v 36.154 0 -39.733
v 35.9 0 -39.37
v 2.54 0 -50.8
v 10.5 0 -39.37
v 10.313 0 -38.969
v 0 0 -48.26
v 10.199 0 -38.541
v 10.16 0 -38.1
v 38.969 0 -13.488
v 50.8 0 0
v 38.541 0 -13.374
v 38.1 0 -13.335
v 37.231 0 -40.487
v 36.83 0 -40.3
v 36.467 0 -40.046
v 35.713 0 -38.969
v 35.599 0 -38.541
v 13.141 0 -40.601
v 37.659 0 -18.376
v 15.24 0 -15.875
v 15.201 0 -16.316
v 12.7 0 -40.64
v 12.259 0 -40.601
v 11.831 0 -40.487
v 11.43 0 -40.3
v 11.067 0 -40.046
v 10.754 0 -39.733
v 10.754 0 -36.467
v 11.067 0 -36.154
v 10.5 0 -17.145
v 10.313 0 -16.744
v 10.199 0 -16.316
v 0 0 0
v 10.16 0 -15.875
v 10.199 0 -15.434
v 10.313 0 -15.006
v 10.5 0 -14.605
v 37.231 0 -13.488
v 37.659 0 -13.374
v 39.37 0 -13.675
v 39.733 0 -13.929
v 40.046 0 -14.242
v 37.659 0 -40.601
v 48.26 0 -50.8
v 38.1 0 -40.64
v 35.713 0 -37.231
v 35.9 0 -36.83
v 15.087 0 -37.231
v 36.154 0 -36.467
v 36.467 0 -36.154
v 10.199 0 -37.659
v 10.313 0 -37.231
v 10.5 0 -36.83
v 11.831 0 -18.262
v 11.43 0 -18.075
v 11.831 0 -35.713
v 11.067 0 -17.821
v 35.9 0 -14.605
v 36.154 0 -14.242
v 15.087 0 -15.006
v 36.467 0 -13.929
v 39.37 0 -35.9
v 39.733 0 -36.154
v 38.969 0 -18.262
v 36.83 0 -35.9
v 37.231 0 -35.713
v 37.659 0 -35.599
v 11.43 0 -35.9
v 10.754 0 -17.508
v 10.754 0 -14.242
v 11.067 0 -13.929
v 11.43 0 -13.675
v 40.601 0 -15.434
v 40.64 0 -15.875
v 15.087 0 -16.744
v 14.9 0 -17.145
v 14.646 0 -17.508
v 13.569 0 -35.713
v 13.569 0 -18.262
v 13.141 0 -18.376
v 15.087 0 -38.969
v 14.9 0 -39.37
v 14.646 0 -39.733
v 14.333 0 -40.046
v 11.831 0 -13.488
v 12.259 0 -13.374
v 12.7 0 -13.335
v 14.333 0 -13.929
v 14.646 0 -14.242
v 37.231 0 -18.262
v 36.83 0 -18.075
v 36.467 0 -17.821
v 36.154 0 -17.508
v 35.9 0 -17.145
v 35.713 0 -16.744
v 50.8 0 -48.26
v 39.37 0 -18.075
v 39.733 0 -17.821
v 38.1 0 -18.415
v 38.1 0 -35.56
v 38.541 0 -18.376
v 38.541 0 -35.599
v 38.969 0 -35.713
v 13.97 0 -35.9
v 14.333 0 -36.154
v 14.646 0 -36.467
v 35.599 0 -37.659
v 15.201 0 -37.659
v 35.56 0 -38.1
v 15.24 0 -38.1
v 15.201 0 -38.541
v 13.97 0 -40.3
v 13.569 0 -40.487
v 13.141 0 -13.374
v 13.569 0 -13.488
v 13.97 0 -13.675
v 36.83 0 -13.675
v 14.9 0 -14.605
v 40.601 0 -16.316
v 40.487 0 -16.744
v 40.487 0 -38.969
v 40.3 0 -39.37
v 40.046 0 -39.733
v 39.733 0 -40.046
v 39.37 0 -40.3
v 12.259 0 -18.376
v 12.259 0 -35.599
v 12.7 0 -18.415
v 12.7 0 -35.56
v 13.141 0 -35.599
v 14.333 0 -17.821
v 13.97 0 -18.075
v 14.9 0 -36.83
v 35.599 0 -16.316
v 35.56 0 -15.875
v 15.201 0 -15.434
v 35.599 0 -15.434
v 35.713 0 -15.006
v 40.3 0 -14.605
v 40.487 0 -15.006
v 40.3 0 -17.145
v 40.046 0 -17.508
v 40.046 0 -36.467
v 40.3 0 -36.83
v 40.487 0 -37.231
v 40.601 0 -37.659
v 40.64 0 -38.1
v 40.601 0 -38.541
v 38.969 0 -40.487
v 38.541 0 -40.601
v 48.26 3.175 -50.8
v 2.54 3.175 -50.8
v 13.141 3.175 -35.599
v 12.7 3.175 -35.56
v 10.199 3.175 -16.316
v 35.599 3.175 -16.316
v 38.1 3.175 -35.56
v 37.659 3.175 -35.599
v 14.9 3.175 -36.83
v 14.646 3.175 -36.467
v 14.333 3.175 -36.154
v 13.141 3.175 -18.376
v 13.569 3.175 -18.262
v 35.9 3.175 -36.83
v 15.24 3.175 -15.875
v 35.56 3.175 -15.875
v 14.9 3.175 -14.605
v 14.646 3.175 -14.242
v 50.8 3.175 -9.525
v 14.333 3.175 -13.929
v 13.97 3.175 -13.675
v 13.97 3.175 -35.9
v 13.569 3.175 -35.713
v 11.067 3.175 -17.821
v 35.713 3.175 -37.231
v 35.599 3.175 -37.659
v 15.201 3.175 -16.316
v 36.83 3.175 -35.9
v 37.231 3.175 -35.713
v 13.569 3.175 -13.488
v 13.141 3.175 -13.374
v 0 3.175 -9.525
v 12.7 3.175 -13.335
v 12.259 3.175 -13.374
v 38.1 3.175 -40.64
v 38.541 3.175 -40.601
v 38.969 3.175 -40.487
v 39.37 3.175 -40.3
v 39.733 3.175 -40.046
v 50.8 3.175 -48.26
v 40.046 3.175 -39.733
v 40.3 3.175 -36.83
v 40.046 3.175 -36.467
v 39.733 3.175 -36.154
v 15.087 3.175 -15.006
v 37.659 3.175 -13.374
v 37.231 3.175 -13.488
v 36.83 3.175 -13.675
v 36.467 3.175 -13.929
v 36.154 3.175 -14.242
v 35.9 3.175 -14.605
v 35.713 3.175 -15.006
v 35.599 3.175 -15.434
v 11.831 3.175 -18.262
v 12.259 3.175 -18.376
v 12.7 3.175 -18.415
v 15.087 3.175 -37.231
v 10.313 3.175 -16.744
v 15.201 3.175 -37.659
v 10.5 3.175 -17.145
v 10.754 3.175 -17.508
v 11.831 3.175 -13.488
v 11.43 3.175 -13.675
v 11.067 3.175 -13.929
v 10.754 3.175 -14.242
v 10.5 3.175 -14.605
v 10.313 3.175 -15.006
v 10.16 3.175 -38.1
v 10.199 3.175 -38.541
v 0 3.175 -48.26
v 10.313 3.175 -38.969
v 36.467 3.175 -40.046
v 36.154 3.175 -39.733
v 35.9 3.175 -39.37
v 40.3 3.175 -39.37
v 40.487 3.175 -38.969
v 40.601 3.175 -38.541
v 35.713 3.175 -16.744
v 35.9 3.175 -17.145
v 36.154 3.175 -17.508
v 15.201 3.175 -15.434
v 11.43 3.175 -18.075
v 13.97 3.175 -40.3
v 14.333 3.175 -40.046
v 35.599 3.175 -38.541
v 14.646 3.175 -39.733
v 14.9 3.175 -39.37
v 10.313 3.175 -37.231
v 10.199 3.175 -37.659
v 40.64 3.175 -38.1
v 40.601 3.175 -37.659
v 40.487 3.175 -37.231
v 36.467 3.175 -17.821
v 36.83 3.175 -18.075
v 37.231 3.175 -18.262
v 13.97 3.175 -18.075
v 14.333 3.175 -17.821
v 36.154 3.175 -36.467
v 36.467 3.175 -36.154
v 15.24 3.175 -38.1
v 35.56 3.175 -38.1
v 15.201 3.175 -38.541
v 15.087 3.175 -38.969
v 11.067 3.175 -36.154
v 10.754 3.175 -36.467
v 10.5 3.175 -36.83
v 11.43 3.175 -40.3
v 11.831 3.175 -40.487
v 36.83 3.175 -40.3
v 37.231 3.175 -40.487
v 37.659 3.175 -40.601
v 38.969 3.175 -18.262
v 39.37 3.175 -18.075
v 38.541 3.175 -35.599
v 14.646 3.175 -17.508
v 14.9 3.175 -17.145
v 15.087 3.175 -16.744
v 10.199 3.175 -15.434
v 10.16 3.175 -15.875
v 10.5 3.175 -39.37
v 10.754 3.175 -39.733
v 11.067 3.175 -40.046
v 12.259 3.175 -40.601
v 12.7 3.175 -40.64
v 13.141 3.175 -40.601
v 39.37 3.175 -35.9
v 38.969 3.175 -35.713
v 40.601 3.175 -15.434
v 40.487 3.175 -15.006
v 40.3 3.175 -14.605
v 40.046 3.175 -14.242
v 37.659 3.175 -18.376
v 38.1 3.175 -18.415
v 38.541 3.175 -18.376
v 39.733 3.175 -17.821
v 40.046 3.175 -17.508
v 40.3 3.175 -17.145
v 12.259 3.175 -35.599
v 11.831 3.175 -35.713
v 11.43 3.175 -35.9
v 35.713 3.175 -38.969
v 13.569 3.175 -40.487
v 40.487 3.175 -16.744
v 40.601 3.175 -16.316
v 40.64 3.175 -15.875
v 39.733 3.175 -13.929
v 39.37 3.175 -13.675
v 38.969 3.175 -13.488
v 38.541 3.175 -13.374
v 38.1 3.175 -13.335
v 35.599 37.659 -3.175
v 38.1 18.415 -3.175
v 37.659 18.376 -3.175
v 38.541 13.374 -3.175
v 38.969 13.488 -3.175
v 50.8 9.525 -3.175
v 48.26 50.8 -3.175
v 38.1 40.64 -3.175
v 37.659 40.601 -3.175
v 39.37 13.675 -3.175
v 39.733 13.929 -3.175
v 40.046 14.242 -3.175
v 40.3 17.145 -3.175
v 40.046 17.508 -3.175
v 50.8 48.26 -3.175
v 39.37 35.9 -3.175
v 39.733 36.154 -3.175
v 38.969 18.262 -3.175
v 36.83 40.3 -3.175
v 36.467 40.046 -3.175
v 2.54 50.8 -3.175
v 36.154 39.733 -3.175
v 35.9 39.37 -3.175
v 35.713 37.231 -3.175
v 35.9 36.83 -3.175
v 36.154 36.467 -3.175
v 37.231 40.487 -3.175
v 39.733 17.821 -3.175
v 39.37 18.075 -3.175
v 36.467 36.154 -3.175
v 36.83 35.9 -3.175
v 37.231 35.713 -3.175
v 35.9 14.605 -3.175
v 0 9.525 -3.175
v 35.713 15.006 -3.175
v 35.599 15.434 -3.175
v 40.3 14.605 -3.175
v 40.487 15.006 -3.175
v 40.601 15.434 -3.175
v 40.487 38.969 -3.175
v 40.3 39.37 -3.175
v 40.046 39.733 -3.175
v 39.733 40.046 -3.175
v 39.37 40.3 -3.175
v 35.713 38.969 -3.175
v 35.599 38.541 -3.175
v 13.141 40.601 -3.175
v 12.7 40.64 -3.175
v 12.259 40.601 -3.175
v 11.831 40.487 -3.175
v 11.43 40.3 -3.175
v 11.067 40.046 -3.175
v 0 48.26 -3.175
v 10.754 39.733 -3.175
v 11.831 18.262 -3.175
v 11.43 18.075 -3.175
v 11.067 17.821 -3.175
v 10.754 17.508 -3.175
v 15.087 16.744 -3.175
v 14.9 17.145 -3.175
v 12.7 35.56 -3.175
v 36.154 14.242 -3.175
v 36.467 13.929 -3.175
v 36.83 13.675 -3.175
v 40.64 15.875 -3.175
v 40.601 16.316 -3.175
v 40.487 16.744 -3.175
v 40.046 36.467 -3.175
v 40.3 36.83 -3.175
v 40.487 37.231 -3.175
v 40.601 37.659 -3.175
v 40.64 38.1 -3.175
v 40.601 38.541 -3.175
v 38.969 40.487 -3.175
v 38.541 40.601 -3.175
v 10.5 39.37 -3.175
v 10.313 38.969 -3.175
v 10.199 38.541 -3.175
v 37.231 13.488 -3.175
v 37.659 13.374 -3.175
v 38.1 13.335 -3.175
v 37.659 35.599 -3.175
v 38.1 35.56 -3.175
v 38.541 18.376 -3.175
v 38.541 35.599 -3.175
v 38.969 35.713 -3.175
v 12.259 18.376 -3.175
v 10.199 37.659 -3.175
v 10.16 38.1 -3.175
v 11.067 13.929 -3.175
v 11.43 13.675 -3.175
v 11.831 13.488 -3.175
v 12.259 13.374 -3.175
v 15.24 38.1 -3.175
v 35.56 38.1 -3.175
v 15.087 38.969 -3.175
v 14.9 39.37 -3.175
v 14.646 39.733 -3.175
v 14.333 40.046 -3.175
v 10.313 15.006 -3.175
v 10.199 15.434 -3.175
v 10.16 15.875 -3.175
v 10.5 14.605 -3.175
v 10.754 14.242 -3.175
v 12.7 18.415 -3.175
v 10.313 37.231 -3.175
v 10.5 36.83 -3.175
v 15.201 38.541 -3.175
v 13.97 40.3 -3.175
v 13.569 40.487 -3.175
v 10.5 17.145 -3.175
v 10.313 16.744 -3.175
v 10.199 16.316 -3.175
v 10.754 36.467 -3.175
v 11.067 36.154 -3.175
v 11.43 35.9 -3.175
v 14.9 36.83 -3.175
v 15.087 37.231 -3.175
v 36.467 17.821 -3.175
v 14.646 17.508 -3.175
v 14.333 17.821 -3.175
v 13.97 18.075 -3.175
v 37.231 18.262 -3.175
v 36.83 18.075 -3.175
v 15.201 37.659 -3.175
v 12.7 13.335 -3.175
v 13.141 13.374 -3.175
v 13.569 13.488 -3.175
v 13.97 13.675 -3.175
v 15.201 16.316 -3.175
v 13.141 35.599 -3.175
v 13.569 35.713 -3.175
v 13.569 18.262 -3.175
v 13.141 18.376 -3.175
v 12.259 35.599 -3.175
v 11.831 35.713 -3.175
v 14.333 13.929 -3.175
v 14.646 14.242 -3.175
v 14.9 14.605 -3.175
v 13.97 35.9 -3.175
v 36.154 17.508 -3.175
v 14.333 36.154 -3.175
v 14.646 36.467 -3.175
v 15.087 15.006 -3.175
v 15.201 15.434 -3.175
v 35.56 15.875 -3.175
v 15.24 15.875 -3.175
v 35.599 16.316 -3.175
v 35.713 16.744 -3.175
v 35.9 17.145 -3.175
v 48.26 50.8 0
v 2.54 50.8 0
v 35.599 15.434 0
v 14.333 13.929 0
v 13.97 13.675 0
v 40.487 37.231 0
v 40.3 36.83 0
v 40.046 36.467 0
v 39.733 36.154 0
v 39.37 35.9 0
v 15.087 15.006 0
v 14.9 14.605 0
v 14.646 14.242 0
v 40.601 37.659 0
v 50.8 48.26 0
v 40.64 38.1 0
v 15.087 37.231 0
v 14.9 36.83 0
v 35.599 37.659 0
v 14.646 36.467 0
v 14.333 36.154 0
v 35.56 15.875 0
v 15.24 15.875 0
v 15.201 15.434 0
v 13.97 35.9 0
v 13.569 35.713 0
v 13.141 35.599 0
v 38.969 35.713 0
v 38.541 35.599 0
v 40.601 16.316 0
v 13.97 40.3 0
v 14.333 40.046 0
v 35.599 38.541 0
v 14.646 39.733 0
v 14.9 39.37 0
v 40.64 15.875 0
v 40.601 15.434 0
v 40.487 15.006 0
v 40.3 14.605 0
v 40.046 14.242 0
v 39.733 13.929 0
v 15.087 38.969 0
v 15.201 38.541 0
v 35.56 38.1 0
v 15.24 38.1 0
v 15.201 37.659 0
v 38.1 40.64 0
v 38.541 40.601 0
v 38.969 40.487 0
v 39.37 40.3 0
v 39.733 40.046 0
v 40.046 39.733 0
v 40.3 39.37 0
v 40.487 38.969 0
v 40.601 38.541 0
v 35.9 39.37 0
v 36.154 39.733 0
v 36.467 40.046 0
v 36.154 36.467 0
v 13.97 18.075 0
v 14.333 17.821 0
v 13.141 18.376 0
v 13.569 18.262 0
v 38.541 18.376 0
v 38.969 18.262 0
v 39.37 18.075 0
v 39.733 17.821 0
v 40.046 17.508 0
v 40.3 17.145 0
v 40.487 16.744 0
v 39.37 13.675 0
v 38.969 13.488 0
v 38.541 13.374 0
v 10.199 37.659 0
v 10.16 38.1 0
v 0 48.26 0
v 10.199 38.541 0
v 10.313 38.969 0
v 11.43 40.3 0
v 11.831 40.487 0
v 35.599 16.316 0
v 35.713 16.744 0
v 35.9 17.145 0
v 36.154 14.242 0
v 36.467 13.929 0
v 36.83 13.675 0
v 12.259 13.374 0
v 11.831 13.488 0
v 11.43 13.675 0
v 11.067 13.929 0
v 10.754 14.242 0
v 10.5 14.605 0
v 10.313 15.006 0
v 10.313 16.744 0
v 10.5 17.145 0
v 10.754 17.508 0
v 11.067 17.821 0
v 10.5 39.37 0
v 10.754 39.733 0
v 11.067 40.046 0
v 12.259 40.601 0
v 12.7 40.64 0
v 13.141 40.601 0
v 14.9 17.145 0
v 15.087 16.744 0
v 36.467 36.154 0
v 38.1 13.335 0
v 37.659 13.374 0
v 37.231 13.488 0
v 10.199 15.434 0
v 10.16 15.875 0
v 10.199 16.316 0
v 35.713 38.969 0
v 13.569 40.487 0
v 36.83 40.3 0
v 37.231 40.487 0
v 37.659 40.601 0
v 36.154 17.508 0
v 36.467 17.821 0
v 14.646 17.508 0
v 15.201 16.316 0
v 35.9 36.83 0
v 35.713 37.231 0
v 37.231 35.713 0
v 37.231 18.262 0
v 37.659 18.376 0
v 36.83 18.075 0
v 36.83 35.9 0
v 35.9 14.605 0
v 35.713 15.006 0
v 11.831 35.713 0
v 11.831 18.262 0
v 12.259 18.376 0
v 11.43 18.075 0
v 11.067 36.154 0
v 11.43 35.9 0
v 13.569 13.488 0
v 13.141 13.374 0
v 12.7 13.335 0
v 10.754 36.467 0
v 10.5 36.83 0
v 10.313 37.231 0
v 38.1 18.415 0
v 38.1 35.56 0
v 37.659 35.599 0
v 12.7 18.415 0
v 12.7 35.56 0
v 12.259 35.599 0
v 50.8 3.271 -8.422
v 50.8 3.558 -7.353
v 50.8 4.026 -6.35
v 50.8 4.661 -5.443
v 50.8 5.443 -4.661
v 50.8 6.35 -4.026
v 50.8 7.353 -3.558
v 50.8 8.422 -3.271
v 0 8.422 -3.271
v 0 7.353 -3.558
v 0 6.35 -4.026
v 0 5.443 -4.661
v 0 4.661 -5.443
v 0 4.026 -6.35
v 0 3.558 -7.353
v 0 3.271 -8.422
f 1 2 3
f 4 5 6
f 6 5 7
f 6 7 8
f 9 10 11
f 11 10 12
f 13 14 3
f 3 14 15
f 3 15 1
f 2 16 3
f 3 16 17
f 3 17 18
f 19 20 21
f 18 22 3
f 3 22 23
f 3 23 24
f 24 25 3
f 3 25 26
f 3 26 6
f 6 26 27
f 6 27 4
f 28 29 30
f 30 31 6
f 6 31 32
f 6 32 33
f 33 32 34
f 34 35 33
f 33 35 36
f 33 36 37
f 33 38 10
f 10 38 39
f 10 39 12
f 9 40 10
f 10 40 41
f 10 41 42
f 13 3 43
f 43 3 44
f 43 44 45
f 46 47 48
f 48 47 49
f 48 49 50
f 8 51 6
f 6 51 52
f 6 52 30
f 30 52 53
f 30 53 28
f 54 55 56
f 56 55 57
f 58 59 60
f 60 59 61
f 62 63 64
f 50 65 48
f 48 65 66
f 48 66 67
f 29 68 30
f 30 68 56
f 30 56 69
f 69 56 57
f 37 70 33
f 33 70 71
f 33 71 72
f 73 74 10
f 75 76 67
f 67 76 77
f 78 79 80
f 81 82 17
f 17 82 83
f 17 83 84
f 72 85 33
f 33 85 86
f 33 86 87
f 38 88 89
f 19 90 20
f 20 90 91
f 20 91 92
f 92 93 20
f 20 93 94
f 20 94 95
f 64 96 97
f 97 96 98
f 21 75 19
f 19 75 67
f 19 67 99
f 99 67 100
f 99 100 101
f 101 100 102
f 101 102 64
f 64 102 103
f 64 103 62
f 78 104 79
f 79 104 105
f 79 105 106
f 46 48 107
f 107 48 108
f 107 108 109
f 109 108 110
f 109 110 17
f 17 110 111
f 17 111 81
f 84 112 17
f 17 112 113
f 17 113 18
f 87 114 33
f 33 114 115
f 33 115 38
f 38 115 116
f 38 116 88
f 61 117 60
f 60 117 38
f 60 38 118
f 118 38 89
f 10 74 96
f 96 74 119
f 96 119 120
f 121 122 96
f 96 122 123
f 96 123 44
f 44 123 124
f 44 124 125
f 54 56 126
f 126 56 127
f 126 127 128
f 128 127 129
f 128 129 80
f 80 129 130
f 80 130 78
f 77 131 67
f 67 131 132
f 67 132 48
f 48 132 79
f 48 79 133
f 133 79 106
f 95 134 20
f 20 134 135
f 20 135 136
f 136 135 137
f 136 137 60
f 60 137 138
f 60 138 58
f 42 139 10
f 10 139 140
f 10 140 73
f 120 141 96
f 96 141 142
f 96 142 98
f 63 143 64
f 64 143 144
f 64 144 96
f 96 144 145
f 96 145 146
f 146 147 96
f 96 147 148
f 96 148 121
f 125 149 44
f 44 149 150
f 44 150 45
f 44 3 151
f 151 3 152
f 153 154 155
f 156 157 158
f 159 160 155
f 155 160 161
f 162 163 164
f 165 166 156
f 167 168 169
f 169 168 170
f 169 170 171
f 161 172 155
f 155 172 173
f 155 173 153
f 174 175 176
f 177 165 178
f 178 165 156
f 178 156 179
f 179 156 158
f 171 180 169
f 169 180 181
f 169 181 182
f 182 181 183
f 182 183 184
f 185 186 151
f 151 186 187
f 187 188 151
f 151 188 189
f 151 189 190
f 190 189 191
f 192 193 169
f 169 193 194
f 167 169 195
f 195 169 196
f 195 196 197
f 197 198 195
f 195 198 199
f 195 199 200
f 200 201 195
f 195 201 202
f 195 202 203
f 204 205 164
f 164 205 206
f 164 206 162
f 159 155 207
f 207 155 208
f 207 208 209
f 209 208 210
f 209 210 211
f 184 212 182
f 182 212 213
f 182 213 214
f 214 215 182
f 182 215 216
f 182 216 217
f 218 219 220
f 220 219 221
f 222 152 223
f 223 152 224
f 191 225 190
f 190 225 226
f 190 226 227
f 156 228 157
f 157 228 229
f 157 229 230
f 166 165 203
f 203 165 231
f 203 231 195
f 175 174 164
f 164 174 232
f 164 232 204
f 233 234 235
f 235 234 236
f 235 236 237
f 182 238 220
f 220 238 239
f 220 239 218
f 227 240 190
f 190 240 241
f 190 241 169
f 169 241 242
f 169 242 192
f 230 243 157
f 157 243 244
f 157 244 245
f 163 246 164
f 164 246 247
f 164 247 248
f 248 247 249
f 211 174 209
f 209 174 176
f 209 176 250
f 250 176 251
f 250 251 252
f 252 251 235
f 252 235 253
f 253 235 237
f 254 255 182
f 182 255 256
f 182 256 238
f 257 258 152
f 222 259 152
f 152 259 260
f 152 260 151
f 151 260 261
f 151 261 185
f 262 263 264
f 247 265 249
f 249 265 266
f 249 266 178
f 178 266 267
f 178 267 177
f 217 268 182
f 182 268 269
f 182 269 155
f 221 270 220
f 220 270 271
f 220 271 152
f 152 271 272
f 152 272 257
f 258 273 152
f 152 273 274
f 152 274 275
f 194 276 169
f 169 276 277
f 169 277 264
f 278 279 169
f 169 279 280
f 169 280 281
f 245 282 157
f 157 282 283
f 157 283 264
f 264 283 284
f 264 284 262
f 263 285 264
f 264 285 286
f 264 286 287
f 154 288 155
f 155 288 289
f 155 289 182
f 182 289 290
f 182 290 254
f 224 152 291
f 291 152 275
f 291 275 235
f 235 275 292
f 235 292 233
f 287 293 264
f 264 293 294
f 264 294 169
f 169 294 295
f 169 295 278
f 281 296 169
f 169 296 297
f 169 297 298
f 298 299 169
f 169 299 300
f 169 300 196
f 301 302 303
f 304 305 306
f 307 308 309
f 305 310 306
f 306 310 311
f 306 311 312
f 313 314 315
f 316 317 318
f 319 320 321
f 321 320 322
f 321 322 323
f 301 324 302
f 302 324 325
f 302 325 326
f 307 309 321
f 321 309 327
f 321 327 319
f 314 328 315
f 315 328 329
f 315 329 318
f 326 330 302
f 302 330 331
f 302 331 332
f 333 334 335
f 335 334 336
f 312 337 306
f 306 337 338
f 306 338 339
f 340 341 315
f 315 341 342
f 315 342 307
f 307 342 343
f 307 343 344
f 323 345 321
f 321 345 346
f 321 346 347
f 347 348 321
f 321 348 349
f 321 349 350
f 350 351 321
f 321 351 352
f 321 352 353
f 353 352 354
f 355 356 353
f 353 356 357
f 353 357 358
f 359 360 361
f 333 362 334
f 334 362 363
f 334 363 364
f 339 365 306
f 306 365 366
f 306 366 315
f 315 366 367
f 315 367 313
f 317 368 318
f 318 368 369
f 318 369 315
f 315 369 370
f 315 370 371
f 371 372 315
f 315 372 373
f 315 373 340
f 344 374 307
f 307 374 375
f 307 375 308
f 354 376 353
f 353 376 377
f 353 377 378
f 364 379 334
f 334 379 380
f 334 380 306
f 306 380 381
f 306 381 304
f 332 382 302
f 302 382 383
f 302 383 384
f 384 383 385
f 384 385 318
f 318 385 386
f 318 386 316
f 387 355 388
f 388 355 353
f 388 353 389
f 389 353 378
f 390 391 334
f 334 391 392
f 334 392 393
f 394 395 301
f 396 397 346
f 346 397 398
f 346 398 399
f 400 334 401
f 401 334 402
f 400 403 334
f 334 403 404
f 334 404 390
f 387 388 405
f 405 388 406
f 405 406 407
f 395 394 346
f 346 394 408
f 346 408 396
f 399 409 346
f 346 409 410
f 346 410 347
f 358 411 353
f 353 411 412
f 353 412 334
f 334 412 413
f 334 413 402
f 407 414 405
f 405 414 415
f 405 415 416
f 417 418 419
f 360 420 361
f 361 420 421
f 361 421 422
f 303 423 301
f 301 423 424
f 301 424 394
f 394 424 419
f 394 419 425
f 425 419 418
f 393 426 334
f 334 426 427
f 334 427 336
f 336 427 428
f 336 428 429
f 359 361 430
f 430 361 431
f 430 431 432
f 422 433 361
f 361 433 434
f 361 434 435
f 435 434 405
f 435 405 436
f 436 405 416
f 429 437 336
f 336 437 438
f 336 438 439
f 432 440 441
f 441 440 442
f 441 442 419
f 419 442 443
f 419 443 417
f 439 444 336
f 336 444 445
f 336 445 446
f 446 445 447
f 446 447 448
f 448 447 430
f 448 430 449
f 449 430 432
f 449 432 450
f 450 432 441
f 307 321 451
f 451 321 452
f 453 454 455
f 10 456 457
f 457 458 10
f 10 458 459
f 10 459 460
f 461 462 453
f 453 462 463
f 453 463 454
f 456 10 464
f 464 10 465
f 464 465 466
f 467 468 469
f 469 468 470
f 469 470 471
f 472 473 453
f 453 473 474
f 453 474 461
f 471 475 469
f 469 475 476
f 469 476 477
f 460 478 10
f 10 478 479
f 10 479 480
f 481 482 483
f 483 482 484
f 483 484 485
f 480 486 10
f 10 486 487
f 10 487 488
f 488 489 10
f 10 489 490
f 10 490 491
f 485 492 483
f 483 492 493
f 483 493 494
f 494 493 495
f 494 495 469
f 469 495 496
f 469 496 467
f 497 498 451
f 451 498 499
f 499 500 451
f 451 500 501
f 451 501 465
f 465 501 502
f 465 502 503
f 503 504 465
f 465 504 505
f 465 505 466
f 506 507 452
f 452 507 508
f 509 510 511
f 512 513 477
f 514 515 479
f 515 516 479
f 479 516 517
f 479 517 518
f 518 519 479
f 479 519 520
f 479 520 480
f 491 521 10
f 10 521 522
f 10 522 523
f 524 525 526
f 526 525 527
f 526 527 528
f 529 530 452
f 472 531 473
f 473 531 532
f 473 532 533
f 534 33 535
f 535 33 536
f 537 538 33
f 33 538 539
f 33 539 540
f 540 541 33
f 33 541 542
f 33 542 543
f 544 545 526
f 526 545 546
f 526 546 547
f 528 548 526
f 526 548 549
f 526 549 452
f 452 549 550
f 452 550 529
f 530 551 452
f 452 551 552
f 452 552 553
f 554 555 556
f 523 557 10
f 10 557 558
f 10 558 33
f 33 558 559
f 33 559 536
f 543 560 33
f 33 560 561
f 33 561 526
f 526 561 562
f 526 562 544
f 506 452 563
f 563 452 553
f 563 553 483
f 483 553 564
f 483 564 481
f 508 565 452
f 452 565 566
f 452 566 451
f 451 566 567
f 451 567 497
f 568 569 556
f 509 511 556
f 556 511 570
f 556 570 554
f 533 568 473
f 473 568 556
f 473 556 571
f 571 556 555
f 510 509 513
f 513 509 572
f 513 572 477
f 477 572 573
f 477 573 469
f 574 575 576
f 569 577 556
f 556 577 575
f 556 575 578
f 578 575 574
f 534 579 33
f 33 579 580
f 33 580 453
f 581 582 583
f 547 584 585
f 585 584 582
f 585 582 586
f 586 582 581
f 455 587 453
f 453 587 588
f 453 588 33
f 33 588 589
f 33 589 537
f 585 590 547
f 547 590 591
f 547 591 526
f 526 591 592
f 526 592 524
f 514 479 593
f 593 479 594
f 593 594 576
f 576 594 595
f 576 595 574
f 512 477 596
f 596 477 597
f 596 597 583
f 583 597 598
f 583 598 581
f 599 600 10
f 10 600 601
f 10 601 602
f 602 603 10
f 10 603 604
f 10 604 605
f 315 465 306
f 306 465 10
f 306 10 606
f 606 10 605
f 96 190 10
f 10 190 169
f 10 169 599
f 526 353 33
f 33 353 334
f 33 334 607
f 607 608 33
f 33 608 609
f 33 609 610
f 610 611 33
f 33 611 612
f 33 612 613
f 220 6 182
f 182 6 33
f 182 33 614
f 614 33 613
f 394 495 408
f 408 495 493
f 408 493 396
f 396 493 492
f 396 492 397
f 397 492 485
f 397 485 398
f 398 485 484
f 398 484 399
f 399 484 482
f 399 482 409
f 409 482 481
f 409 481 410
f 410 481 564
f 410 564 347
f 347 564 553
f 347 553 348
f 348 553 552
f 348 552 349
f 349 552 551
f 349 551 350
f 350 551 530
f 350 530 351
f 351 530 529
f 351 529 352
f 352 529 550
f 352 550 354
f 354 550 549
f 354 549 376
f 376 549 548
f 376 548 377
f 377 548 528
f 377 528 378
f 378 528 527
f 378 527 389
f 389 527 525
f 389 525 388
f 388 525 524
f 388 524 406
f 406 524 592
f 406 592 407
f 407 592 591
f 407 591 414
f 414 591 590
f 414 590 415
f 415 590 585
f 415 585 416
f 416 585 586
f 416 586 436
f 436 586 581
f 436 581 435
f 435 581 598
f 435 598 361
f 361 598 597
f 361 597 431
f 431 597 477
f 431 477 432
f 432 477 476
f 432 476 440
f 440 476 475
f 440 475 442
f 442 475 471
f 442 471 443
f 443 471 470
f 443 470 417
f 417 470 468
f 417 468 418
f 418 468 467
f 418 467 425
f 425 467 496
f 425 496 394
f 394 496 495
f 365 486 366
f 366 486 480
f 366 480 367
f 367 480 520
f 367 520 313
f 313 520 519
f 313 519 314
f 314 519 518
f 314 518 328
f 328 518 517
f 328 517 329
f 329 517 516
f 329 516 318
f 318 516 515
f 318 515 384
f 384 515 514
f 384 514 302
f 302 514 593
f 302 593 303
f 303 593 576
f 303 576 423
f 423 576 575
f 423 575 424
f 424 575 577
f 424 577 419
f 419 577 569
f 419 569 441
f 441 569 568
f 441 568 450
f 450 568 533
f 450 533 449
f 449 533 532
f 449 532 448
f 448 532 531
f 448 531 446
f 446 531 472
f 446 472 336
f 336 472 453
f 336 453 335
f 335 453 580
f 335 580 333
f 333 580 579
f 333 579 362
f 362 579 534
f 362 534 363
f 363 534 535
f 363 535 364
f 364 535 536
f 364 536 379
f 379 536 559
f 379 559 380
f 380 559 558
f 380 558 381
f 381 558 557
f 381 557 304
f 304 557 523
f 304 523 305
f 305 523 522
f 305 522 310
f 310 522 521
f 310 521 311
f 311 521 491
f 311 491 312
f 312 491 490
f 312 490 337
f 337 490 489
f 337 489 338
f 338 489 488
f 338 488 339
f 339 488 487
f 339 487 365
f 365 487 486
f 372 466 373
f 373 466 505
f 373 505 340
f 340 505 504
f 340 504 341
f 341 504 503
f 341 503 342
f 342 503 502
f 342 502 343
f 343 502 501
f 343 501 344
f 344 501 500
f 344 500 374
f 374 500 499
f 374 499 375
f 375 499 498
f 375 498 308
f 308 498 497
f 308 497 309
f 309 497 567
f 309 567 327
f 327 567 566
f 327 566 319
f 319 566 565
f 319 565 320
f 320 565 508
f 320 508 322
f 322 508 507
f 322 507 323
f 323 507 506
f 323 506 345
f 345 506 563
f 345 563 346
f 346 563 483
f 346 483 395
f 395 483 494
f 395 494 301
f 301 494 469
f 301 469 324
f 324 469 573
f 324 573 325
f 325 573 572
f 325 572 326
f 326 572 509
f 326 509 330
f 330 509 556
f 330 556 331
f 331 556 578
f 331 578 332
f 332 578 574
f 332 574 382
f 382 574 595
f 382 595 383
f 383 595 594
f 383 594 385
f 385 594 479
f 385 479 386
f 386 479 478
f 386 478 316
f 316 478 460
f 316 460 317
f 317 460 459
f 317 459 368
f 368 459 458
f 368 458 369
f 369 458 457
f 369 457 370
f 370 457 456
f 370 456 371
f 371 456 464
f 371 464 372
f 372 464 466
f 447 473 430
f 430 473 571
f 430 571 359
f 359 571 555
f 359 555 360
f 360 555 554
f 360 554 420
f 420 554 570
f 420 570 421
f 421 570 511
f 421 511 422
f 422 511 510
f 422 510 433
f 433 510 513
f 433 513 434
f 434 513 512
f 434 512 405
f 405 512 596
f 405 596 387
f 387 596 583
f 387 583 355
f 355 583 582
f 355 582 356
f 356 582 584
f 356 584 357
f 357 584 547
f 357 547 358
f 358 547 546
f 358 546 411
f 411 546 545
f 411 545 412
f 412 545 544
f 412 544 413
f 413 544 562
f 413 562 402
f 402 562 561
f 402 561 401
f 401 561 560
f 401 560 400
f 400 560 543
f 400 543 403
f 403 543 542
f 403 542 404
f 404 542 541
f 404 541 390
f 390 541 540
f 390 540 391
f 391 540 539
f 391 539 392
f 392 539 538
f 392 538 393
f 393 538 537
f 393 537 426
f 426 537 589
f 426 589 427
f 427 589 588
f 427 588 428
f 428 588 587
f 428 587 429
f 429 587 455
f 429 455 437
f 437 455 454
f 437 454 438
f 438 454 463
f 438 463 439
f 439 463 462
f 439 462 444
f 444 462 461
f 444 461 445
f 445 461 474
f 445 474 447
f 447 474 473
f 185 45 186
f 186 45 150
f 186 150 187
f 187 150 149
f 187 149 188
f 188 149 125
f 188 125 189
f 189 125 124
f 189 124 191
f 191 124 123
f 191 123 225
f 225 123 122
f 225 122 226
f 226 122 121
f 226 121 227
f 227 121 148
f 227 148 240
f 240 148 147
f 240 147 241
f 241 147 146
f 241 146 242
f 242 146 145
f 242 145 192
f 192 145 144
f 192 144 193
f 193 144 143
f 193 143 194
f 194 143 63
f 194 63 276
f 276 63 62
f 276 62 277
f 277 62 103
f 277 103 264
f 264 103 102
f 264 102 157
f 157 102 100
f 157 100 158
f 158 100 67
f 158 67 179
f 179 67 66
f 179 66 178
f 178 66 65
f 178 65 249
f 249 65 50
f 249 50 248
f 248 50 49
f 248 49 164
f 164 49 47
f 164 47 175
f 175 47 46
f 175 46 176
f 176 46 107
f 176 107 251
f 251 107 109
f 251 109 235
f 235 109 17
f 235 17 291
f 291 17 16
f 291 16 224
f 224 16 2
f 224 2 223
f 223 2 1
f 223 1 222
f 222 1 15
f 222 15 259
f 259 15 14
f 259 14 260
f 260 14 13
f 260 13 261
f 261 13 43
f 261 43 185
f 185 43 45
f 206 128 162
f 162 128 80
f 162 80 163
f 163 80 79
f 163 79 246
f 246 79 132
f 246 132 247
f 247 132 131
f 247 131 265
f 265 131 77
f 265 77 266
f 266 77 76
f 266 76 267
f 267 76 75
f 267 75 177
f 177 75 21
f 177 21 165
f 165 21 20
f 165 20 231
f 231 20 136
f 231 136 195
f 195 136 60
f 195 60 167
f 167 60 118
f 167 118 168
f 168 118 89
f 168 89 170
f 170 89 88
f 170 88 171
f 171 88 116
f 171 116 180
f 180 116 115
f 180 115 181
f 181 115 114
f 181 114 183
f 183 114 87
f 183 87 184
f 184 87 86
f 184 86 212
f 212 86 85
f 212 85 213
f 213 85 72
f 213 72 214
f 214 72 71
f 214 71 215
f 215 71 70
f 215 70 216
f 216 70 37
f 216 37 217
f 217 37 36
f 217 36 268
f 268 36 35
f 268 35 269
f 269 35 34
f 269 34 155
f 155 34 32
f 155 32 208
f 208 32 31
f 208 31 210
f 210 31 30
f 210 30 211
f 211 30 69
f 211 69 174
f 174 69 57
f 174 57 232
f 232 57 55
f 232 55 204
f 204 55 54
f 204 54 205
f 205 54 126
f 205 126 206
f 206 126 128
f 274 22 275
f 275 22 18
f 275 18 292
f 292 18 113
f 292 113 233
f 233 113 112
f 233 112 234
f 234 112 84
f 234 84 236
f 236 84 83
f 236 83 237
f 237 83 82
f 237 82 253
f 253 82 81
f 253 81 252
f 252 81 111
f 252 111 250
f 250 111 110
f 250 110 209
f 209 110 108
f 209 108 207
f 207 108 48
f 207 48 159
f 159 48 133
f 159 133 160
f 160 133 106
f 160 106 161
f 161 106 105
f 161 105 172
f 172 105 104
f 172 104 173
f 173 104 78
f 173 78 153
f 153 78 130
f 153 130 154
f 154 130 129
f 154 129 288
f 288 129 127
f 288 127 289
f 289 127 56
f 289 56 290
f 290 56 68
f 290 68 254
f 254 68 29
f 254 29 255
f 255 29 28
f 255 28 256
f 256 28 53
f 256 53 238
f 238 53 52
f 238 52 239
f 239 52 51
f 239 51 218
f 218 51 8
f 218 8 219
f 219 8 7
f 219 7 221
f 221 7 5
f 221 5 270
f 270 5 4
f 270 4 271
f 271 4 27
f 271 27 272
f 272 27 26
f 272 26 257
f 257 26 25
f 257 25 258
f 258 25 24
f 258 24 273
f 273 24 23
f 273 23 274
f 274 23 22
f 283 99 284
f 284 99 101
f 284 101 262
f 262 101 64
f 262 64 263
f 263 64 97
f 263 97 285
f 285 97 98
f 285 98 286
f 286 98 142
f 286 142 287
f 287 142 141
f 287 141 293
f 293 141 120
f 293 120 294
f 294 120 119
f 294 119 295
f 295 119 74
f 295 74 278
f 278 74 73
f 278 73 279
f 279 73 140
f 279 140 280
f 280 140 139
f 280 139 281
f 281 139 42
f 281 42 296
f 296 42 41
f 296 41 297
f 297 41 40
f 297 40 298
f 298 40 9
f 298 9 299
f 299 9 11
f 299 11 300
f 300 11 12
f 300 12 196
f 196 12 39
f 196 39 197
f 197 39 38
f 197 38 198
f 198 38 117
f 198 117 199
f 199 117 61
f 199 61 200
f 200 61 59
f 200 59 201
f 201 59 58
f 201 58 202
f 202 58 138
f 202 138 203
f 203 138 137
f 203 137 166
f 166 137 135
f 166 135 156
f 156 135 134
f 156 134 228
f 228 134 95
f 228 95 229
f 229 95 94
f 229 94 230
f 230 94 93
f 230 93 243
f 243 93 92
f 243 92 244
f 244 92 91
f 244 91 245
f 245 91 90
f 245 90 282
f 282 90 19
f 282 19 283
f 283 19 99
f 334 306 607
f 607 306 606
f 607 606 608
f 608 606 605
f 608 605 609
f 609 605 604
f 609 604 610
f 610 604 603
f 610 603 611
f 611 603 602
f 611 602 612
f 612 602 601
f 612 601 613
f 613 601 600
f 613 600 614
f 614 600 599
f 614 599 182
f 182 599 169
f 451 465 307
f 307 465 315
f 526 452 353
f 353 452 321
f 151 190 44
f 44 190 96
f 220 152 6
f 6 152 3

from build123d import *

# Parameters (mm, degrees)
BOSS_EXTRUDE1_DEPTH = 50.8
SKETCH2_R           = 2.54
CUT_EXTRUDE1_DEPTH  = 88.988181024
SKETCH3_R           = 2.54
CUT_EXTRUDE2_DEPTH  = 88.988181024
FILLET1_R           = 6.35
CHAMFER1_SIZE       = 2.54


with BuildPart() as part:
    # Sketch1 → Boss-Extrude1 (new body)
    with BuildSketch(Plane(origin=(0, 0, 0), x_dir=(0, 0, -1), z_dir=(1, 0, 0))):
        Polygon((0, 0), (0, 50.8), (3.175, 50.8), (3.175, 3.175), (50.8, 3.175), (50.8, 0), align=None)
    extrude(amount=BOSS_EXTRUDE1_DEPTH)

    # Sketch2 → Cut-Extrude1 (cut, through all)
    with BuildSketch(Plane.XY):
        with Locations((12.7, 38.1)):
            Circle(SKETCH2_R)
        with Locations((12.7, 15.875)):
            Circle(SKETCH2_R)
        with Locations((38.1, 38.1)):
            Circle(SKETCH2_R)
        with Locations((38.1, 15.875)):
            Circle(SKETCH2_R)
    extrude(amount=-CUT_EXTRUDE1_DEPTH, mode=Mode.SUBTRACT)

    # Sketch3 → Cut-Extrude2 (cut, through all)
    with BuildSketch(Plane.XZ):
        with Locations(Location((38.1, -38.1, 0), (0, 0, 270))):
            Circle(SKETCH3_R)
        with Locations(Location((38.1, -15.875, 0), (0, 0, 270))):
            Circle(SKETCH3_R)
        with Locations(Location((12.7, -38.1, 0), (0, 0, 270))):
            Circle(SKETCH3_R)
        with Locations(Location((12.7, -15.875, 0), (0, 0, 270))):
            Circle(SKETCH3_R)
    extrude(amount=-CUT_EXTRUDE2_DEPTH, mode=Mode.SUBTRACT)

    # Fillet1
    fillet1_edges = [part.edges().sort_by_distance(p)[0] for p in [
        (25.4, 3.175, -3.175),
    ]]
    fillet(fillet1_edges, radius=FILLET1_R)

    # Chamfer1
    chamfer1_edges = [part.edges().sort_by_distance(p)[0] for p in [
        (50.8, 50.8, -1.5875),
        (0, 50.8, -1.5875),
        (0, 1.5875, -50.8),
        (50.8, 1.5875, -50.8),
    ]]
    chamfer(chamfer1_edges, length=CHAMFER1_SIZE)


solid = part.part
